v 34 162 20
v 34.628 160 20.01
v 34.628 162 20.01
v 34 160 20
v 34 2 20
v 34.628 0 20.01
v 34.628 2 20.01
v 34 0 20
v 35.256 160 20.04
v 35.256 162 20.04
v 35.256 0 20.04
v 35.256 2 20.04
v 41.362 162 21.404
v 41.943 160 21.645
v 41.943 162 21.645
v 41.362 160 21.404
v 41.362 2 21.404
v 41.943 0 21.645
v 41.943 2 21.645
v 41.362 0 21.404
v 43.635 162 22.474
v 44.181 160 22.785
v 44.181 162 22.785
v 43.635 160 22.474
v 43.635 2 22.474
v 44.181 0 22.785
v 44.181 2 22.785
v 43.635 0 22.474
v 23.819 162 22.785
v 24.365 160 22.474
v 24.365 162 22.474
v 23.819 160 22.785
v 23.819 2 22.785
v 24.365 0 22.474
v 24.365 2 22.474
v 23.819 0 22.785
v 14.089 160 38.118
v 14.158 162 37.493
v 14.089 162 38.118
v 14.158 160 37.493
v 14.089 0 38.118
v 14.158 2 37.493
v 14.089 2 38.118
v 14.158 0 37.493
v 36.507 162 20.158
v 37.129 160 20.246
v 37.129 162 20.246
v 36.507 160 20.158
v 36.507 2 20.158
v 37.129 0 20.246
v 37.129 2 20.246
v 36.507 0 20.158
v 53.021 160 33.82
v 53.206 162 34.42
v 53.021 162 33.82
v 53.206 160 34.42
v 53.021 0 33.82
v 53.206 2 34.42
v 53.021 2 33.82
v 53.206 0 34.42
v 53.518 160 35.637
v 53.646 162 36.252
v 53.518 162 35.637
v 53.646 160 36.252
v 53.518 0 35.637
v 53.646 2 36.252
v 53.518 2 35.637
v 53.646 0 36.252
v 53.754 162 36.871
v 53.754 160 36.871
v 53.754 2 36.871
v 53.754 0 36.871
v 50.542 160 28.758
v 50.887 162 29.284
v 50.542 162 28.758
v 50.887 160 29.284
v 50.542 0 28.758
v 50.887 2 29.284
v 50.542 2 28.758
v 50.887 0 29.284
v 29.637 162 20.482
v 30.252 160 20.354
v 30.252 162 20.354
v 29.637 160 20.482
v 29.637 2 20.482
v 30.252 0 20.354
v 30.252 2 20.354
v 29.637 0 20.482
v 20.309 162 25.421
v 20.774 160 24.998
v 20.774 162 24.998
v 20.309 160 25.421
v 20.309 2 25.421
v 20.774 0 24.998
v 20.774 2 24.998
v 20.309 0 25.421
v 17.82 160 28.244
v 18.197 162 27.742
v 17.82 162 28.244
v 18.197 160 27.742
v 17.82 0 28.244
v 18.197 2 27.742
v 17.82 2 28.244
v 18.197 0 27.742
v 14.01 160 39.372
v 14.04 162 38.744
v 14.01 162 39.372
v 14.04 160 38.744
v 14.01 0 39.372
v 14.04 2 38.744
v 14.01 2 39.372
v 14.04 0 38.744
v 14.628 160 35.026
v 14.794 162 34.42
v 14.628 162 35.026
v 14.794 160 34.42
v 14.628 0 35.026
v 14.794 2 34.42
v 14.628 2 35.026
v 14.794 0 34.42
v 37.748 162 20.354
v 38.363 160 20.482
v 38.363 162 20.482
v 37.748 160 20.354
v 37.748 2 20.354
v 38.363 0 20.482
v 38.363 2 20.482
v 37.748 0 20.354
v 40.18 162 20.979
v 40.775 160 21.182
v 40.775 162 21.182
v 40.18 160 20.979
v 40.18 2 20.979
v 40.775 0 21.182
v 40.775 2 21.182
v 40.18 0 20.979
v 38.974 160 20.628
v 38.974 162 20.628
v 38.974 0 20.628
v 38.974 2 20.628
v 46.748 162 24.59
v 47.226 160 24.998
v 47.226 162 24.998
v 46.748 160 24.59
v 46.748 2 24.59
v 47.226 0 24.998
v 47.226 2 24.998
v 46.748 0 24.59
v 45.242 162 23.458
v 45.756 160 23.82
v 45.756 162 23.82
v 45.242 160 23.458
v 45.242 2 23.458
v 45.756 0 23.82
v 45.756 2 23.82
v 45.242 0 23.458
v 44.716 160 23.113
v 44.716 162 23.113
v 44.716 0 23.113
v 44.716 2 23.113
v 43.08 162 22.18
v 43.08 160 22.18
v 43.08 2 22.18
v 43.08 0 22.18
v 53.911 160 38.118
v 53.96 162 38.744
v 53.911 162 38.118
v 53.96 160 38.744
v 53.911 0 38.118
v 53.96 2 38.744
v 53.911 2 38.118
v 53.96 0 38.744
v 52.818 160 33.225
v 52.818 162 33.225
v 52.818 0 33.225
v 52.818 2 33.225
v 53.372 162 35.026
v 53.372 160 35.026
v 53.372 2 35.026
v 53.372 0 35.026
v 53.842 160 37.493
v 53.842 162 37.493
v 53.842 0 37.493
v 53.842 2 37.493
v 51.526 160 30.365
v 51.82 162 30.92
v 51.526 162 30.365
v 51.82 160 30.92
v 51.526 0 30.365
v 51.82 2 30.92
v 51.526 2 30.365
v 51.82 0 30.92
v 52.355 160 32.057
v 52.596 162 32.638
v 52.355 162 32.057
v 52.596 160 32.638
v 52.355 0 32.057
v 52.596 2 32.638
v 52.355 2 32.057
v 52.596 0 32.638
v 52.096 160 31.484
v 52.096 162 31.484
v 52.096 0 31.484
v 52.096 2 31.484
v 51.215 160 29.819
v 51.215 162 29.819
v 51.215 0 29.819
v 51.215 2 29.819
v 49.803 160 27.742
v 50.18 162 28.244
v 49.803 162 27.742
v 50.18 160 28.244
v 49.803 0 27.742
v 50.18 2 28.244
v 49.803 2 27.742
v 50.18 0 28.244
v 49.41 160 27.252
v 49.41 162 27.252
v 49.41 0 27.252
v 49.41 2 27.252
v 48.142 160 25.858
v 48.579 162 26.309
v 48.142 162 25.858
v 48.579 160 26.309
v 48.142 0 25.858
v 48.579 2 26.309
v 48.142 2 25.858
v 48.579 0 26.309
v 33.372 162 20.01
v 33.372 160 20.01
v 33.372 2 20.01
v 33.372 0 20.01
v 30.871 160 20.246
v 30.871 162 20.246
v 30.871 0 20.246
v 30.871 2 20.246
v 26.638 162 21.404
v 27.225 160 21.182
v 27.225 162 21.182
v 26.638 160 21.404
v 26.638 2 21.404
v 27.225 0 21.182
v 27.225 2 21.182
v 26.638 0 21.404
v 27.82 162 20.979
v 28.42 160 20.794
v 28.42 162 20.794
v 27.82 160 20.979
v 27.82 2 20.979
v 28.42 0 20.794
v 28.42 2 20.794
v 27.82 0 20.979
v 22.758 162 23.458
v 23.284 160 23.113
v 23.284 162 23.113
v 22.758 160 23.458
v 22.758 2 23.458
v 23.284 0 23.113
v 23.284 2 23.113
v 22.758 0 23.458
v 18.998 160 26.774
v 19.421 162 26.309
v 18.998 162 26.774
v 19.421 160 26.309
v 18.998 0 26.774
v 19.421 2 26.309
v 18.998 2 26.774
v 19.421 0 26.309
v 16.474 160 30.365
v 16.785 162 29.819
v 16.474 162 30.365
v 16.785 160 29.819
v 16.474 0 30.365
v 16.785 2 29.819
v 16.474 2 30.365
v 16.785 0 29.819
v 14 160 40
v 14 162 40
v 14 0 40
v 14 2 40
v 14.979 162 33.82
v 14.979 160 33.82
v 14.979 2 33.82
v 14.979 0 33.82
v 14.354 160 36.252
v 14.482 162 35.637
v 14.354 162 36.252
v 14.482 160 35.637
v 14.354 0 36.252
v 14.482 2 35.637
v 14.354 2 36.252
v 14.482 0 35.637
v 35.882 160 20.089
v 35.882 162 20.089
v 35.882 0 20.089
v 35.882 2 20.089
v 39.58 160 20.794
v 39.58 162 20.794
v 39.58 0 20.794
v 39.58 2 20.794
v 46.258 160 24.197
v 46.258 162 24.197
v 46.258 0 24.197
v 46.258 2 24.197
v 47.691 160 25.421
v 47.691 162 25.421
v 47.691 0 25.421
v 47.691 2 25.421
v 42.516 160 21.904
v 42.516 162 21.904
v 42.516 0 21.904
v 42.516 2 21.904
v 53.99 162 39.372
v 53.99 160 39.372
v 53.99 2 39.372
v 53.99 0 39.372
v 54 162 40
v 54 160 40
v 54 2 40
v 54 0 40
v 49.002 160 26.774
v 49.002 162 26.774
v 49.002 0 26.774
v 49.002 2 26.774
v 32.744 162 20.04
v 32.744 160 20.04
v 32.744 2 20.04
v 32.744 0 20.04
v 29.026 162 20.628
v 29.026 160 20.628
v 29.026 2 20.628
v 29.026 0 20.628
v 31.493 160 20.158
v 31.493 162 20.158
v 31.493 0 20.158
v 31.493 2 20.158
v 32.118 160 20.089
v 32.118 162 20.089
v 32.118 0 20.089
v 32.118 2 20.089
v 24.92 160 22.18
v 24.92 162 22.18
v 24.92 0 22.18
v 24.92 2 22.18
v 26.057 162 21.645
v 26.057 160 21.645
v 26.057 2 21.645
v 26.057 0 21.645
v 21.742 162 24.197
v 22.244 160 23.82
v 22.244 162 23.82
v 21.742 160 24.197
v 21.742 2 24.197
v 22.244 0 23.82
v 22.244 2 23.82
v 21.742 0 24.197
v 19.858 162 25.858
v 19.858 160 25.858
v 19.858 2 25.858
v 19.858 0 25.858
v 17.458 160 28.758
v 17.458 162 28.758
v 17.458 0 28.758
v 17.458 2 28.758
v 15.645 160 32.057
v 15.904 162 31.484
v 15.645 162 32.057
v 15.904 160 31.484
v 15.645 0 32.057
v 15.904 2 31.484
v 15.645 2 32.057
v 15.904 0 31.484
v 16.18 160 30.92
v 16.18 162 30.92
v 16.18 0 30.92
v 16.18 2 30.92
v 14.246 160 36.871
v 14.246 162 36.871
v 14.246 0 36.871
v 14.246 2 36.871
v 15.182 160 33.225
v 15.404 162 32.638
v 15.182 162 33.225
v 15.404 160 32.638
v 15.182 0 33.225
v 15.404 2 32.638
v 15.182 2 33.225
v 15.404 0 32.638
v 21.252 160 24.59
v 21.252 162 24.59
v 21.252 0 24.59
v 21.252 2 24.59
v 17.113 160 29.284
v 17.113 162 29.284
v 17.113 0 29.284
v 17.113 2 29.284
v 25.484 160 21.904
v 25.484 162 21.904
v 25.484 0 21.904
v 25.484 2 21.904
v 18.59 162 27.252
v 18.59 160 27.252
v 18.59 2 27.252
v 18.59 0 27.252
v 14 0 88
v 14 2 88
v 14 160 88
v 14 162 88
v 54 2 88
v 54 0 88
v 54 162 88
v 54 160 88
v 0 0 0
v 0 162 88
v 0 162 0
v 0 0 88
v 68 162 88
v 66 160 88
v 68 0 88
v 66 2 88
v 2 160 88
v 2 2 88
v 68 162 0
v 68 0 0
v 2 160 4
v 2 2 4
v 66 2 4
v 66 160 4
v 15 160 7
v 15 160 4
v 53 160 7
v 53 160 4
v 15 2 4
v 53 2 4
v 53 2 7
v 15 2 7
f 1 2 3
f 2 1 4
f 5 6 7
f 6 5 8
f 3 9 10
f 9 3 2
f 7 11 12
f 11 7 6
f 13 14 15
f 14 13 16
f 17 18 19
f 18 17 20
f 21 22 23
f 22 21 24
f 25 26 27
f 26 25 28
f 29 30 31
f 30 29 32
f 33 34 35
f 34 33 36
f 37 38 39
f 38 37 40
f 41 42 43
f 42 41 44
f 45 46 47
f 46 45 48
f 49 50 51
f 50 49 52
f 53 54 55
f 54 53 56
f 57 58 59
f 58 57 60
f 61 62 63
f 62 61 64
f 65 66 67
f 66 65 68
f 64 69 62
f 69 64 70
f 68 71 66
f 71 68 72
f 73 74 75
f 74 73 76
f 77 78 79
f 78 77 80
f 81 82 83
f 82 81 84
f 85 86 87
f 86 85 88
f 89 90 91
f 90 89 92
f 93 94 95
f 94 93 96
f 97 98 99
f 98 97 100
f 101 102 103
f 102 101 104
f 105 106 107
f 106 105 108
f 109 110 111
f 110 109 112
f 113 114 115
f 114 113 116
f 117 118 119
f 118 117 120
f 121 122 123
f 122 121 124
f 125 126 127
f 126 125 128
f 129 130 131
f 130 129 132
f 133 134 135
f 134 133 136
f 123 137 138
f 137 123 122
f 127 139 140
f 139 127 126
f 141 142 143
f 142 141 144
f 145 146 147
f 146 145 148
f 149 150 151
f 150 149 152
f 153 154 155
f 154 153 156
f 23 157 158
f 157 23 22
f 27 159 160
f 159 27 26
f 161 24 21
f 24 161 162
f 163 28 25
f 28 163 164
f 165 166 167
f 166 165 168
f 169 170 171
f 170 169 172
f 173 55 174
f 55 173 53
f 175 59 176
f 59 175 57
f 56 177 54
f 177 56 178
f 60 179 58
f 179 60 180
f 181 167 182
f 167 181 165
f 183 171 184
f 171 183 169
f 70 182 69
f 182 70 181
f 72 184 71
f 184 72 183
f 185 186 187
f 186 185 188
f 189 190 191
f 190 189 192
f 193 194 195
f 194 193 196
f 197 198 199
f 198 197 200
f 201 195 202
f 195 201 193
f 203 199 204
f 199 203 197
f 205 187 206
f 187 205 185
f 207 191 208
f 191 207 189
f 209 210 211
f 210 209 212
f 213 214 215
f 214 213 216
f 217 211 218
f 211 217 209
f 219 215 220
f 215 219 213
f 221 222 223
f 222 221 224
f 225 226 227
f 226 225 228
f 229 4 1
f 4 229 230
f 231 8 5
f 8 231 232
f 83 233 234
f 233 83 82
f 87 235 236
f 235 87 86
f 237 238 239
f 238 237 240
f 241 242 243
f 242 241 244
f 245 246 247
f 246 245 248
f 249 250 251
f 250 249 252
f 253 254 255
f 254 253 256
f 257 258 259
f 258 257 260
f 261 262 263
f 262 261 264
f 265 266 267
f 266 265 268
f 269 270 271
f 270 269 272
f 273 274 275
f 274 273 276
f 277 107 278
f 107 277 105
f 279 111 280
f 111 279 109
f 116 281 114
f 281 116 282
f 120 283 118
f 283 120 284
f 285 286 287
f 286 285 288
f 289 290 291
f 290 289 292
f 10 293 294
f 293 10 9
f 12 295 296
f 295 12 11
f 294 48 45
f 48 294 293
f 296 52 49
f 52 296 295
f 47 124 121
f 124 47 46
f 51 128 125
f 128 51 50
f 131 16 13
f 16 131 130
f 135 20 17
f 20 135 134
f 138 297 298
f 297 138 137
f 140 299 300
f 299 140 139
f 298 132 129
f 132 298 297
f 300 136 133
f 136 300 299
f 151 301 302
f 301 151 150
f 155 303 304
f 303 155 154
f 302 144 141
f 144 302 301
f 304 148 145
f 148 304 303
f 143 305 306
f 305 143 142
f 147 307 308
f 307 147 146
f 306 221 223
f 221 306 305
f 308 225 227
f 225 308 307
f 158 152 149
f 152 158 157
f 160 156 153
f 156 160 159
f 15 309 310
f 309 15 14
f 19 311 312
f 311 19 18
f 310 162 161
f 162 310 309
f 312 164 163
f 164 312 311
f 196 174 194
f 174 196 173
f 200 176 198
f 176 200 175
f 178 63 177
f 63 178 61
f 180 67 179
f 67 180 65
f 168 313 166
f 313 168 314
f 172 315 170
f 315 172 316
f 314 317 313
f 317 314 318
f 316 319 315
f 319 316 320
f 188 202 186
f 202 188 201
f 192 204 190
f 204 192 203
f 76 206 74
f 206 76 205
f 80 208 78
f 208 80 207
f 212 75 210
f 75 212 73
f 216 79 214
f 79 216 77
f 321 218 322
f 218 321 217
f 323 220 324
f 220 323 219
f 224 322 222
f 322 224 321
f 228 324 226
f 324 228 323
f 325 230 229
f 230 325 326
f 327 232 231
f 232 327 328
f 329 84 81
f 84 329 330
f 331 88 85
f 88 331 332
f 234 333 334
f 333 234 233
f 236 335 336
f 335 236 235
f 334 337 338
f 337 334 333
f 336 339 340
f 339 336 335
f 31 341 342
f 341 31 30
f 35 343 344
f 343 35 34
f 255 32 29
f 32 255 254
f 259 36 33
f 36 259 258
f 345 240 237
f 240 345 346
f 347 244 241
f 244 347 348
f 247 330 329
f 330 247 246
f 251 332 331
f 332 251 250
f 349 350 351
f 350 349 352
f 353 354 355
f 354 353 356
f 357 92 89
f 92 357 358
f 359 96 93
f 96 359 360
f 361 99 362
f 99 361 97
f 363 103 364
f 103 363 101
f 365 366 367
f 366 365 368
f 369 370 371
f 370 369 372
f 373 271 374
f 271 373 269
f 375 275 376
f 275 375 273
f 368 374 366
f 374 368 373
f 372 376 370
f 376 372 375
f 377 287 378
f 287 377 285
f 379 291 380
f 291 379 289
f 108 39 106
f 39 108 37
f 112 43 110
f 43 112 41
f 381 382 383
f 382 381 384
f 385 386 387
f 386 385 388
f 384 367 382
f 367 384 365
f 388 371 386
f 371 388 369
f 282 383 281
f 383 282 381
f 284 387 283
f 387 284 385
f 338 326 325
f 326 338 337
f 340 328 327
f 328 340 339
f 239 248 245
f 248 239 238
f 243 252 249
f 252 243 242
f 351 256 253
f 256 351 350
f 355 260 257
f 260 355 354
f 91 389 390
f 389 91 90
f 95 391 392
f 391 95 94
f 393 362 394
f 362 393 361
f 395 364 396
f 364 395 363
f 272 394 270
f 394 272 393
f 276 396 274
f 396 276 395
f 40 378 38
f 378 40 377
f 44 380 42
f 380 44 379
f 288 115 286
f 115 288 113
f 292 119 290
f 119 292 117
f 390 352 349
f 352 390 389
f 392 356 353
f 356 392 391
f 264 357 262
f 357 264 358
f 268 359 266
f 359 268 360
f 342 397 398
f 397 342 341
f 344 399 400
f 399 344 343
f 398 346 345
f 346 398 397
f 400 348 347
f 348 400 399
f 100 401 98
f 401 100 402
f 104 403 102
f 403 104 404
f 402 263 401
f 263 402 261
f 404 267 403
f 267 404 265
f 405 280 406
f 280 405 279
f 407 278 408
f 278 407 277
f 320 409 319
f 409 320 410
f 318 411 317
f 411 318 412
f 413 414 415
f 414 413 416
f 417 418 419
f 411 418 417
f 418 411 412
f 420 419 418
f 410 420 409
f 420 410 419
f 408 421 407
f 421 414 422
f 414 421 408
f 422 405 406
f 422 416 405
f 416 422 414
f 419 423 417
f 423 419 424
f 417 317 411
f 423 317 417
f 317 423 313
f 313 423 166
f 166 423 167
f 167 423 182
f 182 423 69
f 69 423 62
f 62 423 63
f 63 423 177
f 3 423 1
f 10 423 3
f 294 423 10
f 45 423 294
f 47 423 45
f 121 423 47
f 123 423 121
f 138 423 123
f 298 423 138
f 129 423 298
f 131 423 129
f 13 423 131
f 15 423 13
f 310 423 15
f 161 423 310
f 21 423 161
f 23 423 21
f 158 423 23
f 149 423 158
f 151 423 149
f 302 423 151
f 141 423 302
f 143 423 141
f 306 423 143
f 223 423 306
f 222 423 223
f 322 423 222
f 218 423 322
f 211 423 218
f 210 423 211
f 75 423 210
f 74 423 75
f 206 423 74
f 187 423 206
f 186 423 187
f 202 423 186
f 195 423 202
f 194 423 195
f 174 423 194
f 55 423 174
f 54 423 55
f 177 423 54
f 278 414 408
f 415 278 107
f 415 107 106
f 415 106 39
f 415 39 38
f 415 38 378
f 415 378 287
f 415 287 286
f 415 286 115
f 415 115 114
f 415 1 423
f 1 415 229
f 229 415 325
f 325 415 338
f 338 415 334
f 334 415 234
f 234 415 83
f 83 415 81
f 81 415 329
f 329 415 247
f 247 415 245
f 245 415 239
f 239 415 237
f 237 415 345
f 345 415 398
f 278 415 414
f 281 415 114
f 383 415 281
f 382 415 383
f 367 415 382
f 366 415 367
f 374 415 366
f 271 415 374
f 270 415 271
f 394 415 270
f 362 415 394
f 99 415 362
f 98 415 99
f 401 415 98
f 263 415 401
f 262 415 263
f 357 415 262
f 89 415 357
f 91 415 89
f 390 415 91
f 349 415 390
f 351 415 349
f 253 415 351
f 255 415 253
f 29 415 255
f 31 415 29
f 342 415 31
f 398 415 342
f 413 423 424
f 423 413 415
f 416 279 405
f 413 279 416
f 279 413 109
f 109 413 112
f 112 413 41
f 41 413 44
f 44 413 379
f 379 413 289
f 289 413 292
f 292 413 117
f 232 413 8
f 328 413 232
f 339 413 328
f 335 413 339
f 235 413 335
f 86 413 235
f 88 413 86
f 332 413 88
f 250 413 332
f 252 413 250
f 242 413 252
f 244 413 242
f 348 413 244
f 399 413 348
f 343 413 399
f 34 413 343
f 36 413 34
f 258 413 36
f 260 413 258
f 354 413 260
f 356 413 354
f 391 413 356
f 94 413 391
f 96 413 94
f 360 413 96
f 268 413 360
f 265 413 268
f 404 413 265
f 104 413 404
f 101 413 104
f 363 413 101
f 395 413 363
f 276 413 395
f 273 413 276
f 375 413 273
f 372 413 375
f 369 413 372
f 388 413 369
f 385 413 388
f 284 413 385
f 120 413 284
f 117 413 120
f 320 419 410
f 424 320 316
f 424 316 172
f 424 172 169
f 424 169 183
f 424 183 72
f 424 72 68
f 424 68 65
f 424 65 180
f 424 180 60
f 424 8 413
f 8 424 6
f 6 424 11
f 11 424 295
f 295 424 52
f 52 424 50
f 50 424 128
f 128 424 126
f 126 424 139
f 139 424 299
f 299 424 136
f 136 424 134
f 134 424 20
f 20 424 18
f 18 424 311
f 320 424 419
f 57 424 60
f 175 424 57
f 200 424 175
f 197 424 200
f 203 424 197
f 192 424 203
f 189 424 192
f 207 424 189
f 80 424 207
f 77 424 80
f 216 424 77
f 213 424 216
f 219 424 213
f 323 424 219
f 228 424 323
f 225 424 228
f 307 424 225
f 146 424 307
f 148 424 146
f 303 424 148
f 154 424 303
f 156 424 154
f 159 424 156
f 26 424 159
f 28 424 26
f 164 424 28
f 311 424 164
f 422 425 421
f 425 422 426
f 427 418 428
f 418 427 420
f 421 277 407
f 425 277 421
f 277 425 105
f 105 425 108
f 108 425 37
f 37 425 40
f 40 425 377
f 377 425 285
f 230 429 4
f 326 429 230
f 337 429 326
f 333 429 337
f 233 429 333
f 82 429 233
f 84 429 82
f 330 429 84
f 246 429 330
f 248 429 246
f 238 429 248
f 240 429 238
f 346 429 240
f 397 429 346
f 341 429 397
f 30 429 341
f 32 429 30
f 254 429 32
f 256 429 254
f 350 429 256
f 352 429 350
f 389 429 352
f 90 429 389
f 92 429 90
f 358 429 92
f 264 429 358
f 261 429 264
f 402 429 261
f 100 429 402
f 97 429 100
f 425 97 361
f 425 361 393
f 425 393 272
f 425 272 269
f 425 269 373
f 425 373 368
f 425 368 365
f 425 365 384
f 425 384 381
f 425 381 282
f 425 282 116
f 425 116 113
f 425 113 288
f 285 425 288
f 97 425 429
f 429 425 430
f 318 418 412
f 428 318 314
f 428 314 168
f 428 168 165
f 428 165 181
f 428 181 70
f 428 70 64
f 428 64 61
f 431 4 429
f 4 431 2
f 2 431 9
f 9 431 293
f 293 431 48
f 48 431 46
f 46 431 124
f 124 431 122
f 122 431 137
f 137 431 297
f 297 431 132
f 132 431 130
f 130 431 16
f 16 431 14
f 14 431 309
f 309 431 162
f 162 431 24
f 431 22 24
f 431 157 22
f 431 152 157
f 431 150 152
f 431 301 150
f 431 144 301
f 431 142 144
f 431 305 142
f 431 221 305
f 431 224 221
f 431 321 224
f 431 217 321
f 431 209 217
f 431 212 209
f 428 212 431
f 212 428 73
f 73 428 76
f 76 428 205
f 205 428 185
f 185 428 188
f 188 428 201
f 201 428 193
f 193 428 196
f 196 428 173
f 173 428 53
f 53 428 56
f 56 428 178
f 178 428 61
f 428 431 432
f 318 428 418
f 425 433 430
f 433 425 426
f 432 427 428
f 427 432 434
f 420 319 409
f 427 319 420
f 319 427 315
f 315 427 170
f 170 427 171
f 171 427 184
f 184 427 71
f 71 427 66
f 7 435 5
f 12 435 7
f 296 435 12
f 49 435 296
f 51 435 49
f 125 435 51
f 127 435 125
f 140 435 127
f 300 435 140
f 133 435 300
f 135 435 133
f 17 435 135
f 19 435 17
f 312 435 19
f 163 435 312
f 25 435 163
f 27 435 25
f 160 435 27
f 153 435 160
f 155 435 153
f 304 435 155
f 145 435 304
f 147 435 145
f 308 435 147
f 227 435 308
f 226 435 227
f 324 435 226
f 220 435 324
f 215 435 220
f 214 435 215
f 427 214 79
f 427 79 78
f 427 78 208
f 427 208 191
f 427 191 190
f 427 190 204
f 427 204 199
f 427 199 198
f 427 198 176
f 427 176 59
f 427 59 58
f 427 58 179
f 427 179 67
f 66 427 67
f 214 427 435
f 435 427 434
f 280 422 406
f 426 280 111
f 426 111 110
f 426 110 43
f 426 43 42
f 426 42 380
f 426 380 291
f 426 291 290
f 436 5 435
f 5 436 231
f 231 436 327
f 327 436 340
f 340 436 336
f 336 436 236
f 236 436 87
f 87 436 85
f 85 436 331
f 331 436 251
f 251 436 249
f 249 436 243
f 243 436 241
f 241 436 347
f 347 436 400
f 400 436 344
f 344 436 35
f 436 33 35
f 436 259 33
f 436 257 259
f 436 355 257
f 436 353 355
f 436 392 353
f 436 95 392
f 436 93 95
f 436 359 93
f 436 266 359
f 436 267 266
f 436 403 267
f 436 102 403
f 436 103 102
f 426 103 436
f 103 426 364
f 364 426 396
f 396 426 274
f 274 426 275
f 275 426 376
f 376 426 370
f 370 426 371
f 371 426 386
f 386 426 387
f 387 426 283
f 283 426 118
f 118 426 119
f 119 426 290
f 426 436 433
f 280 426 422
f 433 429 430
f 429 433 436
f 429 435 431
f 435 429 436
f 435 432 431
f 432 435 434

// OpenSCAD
$fn=200;

THICK = 2;

CARD_L = 158;
CARD_W = 64;
CARD_STACK = 84;

BOX_W = CARD_W + (THICK * 2);
BOX_L = CARD_L + (THICK * 2);
BOX_H = CARD_STACK + (THICK * 2);

SMALL_DECK_STACK = 7;

translate([15, 0, 0])
    cube(size = [BOX_W - 30, BOX_L, 7]);


difference() {
    cube(size = [BOX_W, BOX_L, BOX_H]);

    translate([
        THICK, 
        THICK, 
        BOX_H - CARD_STACK]) {
            
        cube(size = [
            CARD_W,
            CARD_L,
            CARD_STACK + 1]);
    }

    // for ( i = [9 : 2 : CARD_L - 6] ){
    //     translate([1, i, 60])
    //         cube(size = [BOX_W - 2, 1, 40]);
    // }
    
    gap();
}

module gap() {
    translate([
        BOX_W / 2,
        490,
        40]) {

        rotate([90, 90, 0]) {
            cylinder(
                h = 1000,
                r = 20);
        }
    }

    translate([
        (CARD_W / 2) - 18, 
        -50, 
        40]) {
            
        cube(size = [
            40,
            550,
            50]);
    }   
}
